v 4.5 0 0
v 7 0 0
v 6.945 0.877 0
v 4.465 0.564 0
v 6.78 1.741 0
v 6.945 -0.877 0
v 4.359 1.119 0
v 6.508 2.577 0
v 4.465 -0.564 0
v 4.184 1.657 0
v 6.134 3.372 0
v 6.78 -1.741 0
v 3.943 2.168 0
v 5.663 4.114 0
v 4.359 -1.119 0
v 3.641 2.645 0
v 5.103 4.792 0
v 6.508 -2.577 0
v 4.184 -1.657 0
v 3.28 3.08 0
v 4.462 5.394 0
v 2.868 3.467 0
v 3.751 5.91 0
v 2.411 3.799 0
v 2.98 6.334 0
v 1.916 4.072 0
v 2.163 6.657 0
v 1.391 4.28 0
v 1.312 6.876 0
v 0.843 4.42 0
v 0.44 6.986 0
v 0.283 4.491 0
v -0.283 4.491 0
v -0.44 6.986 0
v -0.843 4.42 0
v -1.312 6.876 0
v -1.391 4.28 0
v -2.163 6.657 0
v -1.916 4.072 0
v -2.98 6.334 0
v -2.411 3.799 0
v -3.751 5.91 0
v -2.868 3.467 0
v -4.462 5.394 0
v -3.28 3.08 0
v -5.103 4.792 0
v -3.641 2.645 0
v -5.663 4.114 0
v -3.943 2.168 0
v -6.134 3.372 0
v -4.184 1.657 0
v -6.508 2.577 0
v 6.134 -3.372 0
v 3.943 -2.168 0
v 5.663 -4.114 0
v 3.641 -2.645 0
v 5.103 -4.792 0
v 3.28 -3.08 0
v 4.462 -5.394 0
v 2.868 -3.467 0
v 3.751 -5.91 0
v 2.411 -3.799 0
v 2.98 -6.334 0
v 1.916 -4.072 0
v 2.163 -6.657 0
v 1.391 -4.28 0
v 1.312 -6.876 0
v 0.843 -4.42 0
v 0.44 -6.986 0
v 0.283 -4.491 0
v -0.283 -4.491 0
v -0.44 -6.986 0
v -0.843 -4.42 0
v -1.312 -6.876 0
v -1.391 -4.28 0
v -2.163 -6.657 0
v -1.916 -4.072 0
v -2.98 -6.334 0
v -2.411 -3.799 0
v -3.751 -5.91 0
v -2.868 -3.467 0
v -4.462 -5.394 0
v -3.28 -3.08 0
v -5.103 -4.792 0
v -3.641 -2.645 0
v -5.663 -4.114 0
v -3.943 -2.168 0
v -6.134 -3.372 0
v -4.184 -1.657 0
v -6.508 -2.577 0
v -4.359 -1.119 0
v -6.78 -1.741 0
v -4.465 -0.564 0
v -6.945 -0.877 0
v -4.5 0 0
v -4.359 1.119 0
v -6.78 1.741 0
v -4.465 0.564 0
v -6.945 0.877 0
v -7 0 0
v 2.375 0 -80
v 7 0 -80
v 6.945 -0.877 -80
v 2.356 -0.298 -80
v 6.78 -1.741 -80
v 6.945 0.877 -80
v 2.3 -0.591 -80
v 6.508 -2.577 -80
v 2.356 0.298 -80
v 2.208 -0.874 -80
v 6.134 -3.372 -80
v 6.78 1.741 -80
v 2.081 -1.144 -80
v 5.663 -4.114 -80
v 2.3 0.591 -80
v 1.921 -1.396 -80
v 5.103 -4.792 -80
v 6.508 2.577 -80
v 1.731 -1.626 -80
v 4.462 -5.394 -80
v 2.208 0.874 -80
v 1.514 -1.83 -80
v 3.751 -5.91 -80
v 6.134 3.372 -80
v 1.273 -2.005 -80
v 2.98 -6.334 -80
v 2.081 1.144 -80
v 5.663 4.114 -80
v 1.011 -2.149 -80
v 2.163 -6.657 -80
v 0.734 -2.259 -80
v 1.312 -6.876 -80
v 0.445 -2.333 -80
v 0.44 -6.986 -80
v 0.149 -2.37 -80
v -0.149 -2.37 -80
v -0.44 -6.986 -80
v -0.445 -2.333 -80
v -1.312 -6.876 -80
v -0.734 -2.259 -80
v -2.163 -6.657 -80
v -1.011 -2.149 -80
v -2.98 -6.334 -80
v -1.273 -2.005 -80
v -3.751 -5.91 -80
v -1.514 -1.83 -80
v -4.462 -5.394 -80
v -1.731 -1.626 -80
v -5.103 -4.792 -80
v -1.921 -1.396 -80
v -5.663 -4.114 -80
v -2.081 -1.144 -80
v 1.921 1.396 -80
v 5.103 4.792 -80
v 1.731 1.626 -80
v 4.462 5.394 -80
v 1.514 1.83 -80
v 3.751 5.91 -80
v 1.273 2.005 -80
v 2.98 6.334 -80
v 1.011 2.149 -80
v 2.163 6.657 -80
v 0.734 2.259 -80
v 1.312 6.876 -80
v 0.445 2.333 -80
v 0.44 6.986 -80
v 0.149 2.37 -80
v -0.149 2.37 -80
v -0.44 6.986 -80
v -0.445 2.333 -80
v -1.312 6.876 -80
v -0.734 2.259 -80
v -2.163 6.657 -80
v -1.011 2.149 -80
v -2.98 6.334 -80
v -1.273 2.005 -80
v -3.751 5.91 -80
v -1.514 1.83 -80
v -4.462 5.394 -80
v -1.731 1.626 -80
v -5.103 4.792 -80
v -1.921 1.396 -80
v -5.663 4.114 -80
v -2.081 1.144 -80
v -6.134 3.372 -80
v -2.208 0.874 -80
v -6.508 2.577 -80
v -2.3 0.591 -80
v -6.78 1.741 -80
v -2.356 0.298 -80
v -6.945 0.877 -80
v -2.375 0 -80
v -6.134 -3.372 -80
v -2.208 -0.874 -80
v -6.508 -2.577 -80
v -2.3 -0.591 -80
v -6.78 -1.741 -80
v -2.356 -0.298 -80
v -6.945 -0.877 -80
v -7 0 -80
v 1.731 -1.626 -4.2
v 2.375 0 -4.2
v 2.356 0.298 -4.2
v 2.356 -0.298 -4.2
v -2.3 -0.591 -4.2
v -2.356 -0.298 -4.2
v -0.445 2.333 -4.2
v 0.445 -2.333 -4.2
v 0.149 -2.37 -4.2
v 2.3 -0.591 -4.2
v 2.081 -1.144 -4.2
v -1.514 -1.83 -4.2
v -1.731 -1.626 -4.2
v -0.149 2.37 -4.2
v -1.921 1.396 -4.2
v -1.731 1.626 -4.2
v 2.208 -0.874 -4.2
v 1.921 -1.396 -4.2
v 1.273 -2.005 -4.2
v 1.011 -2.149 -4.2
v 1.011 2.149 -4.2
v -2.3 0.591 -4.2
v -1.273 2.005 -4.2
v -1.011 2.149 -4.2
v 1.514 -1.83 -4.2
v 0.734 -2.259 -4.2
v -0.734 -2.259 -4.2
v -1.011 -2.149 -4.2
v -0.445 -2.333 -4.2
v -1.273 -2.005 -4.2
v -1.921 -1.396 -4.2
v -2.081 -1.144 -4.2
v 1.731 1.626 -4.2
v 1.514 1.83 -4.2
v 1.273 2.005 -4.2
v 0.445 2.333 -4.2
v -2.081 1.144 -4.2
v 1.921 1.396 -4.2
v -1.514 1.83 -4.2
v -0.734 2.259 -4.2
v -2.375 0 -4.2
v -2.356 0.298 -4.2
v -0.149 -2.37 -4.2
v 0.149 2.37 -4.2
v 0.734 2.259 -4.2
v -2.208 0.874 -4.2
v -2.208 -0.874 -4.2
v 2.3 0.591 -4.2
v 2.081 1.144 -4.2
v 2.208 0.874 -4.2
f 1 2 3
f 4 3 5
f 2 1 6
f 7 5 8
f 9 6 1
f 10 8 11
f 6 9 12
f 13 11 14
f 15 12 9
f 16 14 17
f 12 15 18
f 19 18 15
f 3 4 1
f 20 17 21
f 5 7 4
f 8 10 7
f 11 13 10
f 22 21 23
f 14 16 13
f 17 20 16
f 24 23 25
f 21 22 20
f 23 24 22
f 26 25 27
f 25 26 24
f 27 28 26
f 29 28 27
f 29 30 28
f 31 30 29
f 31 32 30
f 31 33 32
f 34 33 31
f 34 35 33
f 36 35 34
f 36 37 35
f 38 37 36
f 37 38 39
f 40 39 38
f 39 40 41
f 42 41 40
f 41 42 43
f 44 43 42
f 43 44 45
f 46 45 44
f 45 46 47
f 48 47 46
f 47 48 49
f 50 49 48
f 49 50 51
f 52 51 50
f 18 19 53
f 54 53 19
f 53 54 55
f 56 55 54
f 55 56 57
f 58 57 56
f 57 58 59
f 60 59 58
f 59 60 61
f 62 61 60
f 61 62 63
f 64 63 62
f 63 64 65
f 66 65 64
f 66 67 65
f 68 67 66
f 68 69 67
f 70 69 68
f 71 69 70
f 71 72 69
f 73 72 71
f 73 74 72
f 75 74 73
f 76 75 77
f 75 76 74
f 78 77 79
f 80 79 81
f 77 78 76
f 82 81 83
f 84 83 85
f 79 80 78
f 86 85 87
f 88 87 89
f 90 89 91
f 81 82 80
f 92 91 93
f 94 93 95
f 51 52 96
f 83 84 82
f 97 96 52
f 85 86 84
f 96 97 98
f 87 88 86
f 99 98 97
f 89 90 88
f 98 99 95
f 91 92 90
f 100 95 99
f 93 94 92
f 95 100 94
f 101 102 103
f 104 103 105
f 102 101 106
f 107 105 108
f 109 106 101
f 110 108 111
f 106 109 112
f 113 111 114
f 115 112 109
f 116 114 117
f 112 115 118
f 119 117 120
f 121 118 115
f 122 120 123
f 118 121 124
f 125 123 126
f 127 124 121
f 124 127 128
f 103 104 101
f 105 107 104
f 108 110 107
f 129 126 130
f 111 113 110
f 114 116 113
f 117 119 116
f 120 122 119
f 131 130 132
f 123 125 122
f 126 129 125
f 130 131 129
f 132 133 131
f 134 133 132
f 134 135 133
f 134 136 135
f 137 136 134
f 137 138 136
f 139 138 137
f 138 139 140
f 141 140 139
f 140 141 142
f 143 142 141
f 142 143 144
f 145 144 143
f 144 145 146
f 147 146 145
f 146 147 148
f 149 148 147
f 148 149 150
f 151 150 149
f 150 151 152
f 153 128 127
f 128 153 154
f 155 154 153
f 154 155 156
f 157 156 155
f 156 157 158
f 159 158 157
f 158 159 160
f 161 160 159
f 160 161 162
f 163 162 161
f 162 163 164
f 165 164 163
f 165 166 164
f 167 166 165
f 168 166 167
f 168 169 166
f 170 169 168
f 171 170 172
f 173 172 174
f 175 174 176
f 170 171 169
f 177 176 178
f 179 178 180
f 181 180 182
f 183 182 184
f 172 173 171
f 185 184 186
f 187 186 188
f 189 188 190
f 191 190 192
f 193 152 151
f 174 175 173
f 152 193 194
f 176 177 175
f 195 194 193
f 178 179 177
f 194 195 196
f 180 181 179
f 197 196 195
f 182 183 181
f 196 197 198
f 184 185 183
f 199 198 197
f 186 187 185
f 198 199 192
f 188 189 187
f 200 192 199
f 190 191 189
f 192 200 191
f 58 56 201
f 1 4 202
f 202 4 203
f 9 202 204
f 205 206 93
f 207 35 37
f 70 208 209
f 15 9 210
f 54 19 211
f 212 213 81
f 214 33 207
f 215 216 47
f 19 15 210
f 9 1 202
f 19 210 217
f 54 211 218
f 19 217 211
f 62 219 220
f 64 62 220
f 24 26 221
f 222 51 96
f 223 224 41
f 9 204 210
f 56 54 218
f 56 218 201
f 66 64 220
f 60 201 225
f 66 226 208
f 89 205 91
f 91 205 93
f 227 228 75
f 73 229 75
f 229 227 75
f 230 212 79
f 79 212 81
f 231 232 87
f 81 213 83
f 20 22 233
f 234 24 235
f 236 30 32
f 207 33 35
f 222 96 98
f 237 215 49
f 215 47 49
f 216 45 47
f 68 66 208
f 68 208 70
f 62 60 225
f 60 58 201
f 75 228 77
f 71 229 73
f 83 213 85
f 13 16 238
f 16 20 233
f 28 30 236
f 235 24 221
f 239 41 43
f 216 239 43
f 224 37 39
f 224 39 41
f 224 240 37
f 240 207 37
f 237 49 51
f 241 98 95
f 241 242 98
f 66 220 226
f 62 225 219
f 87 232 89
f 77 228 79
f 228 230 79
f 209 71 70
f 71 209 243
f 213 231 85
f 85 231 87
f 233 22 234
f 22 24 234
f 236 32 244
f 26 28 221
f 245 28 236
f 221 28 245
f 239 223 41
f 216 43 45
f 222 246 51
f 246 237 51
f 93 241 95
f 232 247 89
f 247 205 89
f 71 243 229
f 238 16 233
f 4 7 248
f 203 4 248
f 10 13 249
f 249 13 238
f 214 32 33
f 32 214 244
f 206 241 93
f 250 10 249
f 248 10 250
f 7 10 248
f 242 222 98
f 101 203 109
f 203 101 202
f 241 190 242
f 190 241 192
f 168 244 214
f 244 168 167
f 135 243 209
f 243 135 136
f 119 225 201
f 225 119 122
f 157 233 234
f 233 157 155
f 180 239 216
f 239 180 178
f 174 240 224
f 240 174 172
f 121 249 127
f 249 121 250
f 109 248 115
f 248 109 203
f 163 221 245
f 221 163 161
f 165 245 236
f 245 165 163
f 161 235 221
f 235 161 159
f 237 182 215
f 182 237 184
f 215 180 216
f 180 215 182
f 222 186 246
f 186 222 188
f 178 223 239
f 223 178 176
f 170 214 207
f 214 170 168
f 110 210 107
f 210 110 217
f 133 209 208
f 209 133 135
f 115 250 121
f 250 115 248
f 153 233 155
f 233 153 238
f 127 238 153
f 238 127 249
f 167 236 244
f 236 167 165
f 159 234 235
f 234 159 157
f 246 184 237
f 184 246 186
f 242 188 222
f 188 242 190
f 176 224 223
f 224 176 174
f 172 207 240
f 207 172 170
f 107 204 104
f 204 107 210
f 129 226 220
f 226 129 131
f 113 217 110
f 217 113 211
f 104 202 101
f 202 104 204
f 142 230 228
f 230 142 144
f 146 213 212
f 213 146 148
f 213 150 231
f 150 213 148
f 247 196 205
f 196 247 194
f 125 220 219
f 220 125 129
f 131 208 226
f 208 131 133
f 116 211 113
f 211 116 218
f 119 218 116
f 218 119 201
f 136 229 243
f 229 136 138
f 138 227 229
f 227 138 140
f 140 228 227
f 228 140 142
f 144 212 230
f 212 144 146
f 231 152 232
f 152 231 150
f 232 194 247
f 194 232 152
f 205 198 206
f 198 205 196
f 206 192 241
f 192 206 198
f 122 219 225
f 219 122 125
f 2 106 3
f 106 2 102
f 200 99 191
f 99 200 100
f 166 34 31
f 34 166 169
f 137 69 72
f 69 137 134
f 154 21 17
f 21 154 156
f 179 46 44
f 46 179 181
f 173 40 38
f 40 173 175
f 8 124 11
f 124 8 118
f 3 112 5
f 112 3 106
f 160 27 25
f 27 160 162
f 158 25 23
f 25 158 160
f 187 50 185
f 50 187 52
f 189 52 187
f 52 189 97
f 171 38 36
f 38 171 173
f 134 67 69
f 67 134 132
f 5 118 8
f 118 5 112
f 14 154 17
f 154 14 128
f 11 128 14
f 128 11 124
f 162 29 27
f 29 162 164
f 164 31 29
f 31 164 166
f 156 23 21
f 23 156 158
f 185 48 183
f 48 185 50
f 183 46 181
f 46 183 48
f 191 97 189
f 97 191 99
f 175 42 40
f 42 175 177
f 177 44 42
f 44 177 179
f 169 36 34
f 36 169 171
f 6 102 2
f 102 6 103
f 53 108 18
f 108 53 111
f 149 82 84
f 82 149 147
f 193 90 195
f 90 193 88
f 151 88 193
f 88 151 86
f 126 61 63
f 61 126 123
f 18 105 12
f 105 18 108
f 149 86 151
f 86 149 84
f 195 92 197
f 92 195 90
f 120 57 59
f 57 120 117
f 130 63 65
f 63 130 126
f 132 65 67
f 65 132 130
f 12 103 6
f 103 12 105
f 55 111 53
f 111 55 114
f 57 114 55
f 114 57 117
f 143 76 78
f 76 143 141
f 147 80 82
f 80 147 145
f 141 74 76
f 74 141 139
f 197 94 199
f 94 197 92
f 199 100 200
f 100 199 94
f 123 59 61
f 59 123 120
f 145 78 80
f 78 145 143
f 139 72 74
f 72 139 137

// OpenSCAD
$fn = 50;


difference() {
	union() {
		translate(v = [0, 0, -80.0000000000]) {
			cylinder(h = 80, r = 7.0000000000);
		}
		cylinder(h = 0, r = 17.0000000000);
	}
	union() {
		translate(v = [0, 0, 0]) {
			rotate(a = [0, 0, 0]) {
				difference() {
					union() {
						#translate(v = [0, 0, -80.0000000000]) {
							cylinder(h = 80, r = 2.2500000000);
						}
						#translate(v = [0, 0, -4.2000000000]) {
							cylinder(h = 4.2000000000, r = 7.0000000000, r1 = 2.3750000000, r2 = 4.5000000000);
						}
						#translate(v = [0, 0, -80.0000000000]) {
							cylinder(h = 80, r = 2.3750000000);
						}
						#translate(v = [0, 0, -80.0000000000]) {
							cylinder(h = 80, r = 2.2500000000);
						}
					}
					union();
				}
			}
		}
	}
}
